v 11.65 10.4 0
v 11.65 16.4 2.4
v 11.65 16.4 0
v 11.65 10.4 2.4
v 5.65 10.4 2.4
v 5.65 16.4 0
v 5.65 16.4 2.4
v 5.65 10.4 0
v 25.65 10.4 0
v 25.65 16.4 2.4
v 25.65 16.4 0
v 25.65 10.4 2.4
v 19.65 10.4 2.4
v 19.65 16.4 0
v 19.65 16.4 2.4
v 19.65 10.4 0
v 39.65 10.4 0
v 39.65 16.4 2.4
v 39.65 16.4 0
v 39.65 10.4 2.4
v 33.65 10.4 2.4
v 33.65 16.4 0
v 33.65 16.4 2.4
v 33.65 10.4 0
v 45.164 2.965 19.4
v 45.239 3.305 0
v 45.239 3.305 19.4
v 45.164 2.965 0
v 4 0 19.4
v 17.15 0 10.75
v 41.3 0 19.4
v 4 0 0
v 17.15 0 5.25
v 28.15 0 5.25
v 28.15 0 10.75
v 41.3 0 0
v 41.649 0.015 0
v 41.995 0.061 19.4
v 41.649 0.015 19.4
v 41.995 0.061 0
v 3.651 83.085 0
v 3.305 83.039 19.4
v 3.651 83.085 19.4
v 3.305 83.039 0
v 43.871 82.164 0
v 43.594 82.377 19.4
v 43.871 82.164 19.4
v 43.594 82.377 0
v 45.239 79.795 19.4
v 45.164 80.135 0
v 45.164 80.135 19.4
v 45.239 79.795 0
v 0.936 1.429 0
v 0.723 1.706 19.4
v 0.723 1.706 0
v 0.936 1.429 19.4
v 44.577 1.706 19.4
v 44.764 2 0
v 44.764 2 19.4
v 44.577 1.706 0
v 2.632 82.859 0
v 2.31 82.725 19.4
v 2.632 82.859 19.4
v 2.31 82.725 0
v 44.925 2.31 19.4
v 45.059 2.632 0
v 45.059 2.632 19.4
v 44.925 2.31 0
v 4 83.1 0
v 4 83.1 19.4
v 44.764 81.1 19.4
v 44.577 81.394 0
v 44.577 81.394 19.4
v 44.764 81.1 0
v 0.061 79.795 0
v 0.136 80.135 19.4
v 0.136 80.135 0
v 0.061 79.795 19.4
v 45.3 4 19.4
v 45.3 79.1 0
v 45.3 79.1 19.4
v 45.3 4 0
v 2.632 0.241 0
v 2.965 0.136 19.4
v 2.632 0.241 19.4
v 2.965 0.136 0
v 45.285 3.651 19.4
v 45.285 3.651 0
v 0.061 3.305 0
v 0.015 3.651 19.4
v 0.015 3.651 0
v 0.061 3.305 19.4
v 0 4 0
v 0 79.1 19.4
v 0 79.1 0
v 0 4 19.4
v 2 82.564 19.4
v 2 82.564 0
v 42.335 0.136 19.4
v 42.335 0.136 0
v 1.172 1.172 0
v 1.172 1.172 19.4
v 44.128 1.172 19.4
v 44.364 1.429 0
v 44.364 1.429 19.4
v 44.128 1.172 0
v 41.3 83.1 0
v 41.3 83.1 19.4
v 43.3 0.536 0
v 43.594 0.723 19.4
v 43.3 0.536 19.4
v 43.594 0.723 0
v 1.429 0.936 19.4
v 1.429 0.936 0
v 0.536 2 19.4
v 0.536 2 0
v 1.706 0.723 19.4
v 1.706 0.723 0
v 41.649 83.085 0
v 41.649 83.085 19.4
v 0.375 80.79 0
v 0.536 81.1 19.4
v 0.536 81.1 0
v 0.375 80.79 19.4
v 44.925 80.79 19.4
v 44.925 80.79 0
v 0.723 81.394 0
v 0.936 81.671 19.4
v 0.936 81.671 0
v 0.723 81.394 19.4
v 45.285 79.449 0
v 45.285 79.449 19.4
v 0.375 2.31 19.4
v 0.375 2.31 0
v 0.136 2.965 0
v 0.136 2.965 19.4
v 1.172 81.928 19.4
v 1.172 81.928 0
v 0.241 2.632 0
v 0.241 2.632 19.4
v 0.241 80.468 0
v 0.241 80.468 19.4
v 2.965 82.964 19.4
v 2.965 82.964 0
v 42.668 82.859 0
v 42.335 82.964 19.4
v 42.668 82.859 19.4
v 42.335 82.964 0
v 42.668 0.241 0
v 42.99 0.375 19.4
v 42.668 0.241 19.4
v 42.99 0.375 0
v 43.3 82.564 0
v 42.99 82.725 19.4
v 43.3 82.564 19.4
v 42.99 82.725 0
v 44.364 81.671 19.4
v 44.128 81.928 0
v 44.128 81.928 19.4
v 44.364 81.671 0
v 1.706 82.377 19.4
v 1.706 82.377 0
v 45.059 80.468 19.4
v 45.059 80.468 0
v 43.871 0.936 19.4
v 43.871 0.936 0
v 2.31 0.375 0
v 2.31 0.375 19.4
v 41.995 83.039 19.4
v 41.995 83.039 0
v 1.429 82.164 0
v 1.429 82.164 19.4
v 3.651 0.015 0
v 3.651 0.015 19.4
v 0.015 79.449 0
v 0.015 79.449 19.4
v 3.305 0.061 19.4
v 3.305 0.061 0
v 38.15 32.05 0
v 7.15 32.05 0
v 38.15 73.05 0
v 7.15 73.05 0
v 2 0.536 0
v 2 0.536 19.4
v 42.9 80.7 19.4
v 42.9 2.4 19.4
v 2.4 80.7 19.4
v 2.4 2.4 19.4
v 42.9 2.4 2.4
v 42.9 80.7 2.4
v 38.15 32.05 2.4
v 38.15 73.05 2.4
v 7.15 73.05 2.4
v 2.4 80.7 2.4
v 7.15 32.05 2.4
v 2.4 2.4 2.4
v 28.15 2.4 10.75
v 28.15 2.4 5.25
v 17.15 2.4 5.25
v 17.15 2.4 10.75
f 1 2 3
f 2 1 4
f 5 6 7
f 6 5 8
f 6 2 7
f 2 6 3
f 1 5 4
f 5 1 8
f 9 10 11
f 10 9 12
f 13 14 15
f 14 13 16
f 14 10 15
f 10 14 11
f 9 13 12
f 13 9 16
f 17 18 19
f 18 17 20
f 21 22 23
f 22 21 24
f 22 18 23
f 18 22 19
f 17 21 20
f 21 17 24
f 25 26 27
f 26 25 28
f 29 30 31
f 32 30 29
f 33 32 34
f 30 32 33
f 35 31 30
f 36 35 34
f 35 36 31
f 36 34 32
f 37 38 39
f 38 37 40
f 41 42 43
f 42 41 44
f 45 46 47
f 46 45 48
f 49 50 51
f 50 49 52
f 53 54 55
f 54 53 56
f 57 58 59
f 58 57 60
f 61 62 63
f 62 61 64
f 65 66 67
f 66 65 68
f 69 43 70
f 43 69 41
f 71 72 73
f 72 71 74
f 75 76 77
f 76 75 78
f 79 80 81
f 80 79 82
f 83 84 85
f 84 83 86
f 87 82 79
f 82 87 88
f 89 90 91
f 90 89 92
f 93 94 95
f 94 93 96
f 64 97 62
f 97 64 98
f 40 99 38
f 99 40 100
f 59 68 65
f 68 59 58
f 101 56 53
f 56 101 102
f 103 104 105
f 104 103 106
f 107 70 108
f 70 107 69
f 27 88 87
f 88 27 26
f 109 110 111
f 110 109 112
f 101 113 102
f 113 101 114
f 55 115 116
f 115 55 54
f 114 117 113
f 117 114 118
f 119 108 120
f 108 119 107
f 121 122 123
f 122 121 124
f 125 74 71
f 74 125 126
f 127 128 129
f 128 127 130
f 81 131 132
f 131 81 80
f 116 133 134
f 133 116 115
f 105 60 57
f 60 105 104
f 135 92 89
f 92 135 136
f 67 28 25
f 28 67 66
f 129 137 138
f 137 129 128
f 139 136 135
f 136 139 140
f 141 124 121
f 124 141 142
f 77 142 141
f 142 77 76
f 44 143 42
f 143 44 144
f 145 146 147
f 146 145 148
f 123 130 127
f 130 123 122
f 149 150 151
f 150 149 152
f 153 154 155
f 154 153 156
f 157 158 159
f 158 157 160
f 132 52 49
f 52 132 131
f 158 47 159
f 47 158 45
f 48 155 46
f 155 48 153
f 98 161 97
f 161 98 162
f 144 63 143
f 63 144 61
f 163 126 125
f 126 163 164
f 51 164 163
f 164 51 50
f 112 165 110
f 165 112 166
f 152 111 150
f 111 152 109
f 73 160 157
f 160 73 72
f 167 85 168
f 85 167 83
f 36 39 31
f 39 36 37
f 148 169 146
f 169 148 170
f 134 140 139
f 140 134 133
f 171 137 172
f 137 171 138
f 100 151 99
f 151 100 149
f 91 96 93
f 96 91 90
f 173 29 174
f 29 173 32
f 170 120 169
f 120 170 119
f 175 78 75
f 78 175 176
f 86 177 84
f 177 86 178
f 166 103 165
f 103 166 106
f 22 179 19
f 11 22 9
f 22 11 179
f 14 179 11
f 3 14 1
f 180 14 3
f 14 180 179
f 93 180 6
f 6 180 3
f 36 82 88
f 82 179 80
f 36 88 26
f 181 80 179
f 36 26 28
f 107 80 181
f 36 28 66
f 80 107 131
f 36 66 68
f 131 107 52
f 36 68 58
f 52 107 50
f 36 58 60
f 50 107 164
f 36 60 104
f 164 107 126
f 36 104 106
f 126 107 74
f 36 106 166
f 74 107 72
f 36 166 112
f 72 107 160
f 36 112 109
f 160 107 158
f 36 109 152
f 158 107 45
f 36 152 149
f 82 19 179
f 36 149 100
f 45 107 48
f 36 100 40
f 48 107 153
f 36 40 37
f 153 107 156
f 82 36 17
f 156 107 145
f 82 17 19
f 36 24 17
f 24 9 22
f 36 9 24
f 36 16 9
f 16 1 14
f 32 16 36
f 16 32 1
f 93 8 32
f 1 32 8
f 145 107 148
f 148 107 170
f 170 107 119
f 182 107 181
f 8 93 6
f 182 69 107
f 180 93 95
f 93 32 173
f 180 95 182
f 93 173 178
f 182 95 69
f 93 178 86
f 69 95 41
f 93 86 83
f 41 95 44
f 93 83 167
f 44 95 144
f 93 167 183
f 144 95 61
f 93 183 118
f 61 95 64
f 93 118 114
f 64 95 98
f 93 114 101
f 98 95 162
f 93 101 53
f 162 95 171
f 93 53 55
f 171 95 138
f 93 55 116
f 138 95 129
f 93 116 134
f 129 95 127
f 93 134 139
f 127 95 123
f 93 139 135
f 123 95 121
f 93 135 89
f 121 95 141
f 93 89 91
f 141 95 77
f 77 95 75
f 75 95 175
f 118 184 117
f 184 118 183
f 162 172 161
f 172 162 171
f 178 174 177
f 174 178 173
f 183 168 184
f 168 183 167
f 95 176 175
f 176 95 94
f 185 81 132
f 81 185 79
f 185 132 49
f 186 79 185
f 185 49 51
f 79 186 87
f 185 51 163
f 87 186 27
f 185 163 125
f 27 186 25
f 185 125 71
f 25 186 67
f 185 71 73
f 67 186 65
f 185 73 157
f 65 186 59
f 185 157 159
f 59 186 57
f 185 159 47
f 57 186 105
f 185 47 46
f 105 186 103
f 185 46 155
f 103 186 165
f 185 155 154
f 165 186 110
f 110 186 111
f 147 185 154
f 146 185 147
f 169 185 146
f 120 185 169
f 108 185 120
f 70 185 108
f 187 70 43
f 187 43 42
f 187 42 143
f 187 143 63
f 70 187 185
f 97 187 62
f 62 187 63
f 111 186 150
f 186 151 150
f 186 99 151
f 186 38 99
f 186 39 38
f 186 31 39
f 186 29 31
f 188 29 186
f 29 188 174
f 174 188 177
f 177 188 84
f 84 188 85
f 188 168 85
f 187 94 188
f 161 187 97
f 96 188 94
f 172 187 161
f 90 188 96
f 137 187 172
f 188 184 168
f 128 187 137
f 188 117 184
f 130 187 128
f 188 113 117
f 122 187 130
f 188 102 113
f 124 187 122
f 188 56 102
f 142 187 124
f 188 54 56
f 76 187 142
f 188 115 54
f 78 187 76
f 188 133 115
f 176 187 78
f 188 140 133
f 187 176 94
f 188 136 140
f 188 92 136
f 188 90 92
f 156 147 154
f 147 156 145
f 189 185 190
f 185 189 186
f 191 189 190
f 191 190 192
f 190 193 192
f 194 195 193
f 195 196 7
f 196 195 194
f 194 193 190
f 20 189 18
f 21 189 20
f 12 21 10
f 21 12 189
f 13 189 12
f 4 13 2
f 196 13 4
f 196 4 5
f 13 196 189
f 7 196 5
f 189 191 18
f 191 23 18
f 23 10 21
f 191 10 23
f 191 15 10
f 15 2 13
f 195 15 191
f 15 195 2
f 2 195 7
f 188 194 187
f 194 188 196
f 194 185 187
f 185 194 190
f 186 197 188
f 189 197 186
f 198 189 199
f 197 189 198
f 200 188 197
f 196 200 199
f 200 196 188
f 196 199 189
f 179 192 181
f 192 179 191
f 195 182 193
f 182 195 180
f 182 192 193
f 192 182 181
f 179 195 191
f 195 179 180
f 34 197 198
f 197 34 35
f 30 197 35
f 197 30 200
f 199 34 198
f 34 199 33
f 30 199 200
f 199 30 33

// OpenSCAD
// ============================================================
//  nullcore — корпус (tray), открытый сзади.
//  Экран ST7789 2.0" (PCB 37.5 x 56.3 мм) спереди, 3 кнопки под ним,
//  вырез под USB-C сбоку. Размеры параметрические — подгони штангелем.
// ============================================================
$fn = 72;

// ===== РАЗМЕРЫ ЭКРАНА (мм) — стандартный 2.0" ST7789 =====
disp_pcb_w  = 37.5;  // ширина ПЛАТЫ экрана
disp_pcb_h  = 56.3;  // высота ПЛАТЫ экрана
win_w       = 31;    // ширина видимого окна (видимая область ~30.6)
win_h       = 41;    // высота видимого окна (видимая область ~40.9)

// ===== КНОПКИ (квадратные) =====
btn_size    = 6;     // сторона квадратного отверстия (кнопка 5 мм + зазор)
btn_n       = 3;     // число кнопок
btn_pitch   = 14;    // расстояние между центрами кнопок
btn_zone    = 22;    // высота зоны под кнопками (ниже экрана)

// ===== КОРПУС =====
wall        = 2.4;   // толщина стенок
depth       = 17;    // внутренняя глубина (стопка электроники)
clr         = 1.5;   // зазор вокруг платы экрана по бокам
corner_r    = 4;     // радиус внешних углов

// ===== USB-C =====
usb_w       = 11;    // ширина выреза USB-C
usb_h       = 5.5;   // высота выреза USB-C
usb_z       = 8;     // центр выреза по глубине (от передней стенки)
// =========================================================

inner_w = disp_pcb_w + 2*clr;
inner_h = disp_pcb_h + btn_zone;
outer_w = inner_w + 2*wall;
outer_h = inner_h + 2*wall;
outer_d = depth + wall;

// позиции по Y (от низа outer): экран занимает верхнюю часть
win_y    = wall + btn_zone + (disp_pcb_h - win_h)/2;   // низ окна
btn_y    = wall + btn_zone/2;                          // центр ряда кнопок

module rbox(w,h,d,r){
    hull() for(x=[r, w-r]) for(y=[r, h-r])
        translate([x,y,0]) cylinder(r=r, h=d);
}

difference(){
    rbox(outer_w, outer_h, outer_d, corner_r);               // корпус

    translate([wall, wall, wall])                            // полость, открыта сзади
        cube([inner_w, inner_h, outer_d]);

    translate([(outer_w-win_w)/2, win_y, -1])                // окно экрана
        cube([win_w, win_h, wall+2]);

    for(i=[0:btn_n-1])                                       // кнопки (квадратные)
        translate([outer_w/2 + (i-(btn_n-1)/2)*btn_pitch - btn_size/2, btn_y - btn_size/2, -1])
            cube([btn_size, btn_size, wall+2]);

    translate([(outer_w-usb_w)/2, -1, usb_z - usb_h/2])      // USB-C вырез (низ)
        cube([usb_w, wall+2, usb_h]);
}
